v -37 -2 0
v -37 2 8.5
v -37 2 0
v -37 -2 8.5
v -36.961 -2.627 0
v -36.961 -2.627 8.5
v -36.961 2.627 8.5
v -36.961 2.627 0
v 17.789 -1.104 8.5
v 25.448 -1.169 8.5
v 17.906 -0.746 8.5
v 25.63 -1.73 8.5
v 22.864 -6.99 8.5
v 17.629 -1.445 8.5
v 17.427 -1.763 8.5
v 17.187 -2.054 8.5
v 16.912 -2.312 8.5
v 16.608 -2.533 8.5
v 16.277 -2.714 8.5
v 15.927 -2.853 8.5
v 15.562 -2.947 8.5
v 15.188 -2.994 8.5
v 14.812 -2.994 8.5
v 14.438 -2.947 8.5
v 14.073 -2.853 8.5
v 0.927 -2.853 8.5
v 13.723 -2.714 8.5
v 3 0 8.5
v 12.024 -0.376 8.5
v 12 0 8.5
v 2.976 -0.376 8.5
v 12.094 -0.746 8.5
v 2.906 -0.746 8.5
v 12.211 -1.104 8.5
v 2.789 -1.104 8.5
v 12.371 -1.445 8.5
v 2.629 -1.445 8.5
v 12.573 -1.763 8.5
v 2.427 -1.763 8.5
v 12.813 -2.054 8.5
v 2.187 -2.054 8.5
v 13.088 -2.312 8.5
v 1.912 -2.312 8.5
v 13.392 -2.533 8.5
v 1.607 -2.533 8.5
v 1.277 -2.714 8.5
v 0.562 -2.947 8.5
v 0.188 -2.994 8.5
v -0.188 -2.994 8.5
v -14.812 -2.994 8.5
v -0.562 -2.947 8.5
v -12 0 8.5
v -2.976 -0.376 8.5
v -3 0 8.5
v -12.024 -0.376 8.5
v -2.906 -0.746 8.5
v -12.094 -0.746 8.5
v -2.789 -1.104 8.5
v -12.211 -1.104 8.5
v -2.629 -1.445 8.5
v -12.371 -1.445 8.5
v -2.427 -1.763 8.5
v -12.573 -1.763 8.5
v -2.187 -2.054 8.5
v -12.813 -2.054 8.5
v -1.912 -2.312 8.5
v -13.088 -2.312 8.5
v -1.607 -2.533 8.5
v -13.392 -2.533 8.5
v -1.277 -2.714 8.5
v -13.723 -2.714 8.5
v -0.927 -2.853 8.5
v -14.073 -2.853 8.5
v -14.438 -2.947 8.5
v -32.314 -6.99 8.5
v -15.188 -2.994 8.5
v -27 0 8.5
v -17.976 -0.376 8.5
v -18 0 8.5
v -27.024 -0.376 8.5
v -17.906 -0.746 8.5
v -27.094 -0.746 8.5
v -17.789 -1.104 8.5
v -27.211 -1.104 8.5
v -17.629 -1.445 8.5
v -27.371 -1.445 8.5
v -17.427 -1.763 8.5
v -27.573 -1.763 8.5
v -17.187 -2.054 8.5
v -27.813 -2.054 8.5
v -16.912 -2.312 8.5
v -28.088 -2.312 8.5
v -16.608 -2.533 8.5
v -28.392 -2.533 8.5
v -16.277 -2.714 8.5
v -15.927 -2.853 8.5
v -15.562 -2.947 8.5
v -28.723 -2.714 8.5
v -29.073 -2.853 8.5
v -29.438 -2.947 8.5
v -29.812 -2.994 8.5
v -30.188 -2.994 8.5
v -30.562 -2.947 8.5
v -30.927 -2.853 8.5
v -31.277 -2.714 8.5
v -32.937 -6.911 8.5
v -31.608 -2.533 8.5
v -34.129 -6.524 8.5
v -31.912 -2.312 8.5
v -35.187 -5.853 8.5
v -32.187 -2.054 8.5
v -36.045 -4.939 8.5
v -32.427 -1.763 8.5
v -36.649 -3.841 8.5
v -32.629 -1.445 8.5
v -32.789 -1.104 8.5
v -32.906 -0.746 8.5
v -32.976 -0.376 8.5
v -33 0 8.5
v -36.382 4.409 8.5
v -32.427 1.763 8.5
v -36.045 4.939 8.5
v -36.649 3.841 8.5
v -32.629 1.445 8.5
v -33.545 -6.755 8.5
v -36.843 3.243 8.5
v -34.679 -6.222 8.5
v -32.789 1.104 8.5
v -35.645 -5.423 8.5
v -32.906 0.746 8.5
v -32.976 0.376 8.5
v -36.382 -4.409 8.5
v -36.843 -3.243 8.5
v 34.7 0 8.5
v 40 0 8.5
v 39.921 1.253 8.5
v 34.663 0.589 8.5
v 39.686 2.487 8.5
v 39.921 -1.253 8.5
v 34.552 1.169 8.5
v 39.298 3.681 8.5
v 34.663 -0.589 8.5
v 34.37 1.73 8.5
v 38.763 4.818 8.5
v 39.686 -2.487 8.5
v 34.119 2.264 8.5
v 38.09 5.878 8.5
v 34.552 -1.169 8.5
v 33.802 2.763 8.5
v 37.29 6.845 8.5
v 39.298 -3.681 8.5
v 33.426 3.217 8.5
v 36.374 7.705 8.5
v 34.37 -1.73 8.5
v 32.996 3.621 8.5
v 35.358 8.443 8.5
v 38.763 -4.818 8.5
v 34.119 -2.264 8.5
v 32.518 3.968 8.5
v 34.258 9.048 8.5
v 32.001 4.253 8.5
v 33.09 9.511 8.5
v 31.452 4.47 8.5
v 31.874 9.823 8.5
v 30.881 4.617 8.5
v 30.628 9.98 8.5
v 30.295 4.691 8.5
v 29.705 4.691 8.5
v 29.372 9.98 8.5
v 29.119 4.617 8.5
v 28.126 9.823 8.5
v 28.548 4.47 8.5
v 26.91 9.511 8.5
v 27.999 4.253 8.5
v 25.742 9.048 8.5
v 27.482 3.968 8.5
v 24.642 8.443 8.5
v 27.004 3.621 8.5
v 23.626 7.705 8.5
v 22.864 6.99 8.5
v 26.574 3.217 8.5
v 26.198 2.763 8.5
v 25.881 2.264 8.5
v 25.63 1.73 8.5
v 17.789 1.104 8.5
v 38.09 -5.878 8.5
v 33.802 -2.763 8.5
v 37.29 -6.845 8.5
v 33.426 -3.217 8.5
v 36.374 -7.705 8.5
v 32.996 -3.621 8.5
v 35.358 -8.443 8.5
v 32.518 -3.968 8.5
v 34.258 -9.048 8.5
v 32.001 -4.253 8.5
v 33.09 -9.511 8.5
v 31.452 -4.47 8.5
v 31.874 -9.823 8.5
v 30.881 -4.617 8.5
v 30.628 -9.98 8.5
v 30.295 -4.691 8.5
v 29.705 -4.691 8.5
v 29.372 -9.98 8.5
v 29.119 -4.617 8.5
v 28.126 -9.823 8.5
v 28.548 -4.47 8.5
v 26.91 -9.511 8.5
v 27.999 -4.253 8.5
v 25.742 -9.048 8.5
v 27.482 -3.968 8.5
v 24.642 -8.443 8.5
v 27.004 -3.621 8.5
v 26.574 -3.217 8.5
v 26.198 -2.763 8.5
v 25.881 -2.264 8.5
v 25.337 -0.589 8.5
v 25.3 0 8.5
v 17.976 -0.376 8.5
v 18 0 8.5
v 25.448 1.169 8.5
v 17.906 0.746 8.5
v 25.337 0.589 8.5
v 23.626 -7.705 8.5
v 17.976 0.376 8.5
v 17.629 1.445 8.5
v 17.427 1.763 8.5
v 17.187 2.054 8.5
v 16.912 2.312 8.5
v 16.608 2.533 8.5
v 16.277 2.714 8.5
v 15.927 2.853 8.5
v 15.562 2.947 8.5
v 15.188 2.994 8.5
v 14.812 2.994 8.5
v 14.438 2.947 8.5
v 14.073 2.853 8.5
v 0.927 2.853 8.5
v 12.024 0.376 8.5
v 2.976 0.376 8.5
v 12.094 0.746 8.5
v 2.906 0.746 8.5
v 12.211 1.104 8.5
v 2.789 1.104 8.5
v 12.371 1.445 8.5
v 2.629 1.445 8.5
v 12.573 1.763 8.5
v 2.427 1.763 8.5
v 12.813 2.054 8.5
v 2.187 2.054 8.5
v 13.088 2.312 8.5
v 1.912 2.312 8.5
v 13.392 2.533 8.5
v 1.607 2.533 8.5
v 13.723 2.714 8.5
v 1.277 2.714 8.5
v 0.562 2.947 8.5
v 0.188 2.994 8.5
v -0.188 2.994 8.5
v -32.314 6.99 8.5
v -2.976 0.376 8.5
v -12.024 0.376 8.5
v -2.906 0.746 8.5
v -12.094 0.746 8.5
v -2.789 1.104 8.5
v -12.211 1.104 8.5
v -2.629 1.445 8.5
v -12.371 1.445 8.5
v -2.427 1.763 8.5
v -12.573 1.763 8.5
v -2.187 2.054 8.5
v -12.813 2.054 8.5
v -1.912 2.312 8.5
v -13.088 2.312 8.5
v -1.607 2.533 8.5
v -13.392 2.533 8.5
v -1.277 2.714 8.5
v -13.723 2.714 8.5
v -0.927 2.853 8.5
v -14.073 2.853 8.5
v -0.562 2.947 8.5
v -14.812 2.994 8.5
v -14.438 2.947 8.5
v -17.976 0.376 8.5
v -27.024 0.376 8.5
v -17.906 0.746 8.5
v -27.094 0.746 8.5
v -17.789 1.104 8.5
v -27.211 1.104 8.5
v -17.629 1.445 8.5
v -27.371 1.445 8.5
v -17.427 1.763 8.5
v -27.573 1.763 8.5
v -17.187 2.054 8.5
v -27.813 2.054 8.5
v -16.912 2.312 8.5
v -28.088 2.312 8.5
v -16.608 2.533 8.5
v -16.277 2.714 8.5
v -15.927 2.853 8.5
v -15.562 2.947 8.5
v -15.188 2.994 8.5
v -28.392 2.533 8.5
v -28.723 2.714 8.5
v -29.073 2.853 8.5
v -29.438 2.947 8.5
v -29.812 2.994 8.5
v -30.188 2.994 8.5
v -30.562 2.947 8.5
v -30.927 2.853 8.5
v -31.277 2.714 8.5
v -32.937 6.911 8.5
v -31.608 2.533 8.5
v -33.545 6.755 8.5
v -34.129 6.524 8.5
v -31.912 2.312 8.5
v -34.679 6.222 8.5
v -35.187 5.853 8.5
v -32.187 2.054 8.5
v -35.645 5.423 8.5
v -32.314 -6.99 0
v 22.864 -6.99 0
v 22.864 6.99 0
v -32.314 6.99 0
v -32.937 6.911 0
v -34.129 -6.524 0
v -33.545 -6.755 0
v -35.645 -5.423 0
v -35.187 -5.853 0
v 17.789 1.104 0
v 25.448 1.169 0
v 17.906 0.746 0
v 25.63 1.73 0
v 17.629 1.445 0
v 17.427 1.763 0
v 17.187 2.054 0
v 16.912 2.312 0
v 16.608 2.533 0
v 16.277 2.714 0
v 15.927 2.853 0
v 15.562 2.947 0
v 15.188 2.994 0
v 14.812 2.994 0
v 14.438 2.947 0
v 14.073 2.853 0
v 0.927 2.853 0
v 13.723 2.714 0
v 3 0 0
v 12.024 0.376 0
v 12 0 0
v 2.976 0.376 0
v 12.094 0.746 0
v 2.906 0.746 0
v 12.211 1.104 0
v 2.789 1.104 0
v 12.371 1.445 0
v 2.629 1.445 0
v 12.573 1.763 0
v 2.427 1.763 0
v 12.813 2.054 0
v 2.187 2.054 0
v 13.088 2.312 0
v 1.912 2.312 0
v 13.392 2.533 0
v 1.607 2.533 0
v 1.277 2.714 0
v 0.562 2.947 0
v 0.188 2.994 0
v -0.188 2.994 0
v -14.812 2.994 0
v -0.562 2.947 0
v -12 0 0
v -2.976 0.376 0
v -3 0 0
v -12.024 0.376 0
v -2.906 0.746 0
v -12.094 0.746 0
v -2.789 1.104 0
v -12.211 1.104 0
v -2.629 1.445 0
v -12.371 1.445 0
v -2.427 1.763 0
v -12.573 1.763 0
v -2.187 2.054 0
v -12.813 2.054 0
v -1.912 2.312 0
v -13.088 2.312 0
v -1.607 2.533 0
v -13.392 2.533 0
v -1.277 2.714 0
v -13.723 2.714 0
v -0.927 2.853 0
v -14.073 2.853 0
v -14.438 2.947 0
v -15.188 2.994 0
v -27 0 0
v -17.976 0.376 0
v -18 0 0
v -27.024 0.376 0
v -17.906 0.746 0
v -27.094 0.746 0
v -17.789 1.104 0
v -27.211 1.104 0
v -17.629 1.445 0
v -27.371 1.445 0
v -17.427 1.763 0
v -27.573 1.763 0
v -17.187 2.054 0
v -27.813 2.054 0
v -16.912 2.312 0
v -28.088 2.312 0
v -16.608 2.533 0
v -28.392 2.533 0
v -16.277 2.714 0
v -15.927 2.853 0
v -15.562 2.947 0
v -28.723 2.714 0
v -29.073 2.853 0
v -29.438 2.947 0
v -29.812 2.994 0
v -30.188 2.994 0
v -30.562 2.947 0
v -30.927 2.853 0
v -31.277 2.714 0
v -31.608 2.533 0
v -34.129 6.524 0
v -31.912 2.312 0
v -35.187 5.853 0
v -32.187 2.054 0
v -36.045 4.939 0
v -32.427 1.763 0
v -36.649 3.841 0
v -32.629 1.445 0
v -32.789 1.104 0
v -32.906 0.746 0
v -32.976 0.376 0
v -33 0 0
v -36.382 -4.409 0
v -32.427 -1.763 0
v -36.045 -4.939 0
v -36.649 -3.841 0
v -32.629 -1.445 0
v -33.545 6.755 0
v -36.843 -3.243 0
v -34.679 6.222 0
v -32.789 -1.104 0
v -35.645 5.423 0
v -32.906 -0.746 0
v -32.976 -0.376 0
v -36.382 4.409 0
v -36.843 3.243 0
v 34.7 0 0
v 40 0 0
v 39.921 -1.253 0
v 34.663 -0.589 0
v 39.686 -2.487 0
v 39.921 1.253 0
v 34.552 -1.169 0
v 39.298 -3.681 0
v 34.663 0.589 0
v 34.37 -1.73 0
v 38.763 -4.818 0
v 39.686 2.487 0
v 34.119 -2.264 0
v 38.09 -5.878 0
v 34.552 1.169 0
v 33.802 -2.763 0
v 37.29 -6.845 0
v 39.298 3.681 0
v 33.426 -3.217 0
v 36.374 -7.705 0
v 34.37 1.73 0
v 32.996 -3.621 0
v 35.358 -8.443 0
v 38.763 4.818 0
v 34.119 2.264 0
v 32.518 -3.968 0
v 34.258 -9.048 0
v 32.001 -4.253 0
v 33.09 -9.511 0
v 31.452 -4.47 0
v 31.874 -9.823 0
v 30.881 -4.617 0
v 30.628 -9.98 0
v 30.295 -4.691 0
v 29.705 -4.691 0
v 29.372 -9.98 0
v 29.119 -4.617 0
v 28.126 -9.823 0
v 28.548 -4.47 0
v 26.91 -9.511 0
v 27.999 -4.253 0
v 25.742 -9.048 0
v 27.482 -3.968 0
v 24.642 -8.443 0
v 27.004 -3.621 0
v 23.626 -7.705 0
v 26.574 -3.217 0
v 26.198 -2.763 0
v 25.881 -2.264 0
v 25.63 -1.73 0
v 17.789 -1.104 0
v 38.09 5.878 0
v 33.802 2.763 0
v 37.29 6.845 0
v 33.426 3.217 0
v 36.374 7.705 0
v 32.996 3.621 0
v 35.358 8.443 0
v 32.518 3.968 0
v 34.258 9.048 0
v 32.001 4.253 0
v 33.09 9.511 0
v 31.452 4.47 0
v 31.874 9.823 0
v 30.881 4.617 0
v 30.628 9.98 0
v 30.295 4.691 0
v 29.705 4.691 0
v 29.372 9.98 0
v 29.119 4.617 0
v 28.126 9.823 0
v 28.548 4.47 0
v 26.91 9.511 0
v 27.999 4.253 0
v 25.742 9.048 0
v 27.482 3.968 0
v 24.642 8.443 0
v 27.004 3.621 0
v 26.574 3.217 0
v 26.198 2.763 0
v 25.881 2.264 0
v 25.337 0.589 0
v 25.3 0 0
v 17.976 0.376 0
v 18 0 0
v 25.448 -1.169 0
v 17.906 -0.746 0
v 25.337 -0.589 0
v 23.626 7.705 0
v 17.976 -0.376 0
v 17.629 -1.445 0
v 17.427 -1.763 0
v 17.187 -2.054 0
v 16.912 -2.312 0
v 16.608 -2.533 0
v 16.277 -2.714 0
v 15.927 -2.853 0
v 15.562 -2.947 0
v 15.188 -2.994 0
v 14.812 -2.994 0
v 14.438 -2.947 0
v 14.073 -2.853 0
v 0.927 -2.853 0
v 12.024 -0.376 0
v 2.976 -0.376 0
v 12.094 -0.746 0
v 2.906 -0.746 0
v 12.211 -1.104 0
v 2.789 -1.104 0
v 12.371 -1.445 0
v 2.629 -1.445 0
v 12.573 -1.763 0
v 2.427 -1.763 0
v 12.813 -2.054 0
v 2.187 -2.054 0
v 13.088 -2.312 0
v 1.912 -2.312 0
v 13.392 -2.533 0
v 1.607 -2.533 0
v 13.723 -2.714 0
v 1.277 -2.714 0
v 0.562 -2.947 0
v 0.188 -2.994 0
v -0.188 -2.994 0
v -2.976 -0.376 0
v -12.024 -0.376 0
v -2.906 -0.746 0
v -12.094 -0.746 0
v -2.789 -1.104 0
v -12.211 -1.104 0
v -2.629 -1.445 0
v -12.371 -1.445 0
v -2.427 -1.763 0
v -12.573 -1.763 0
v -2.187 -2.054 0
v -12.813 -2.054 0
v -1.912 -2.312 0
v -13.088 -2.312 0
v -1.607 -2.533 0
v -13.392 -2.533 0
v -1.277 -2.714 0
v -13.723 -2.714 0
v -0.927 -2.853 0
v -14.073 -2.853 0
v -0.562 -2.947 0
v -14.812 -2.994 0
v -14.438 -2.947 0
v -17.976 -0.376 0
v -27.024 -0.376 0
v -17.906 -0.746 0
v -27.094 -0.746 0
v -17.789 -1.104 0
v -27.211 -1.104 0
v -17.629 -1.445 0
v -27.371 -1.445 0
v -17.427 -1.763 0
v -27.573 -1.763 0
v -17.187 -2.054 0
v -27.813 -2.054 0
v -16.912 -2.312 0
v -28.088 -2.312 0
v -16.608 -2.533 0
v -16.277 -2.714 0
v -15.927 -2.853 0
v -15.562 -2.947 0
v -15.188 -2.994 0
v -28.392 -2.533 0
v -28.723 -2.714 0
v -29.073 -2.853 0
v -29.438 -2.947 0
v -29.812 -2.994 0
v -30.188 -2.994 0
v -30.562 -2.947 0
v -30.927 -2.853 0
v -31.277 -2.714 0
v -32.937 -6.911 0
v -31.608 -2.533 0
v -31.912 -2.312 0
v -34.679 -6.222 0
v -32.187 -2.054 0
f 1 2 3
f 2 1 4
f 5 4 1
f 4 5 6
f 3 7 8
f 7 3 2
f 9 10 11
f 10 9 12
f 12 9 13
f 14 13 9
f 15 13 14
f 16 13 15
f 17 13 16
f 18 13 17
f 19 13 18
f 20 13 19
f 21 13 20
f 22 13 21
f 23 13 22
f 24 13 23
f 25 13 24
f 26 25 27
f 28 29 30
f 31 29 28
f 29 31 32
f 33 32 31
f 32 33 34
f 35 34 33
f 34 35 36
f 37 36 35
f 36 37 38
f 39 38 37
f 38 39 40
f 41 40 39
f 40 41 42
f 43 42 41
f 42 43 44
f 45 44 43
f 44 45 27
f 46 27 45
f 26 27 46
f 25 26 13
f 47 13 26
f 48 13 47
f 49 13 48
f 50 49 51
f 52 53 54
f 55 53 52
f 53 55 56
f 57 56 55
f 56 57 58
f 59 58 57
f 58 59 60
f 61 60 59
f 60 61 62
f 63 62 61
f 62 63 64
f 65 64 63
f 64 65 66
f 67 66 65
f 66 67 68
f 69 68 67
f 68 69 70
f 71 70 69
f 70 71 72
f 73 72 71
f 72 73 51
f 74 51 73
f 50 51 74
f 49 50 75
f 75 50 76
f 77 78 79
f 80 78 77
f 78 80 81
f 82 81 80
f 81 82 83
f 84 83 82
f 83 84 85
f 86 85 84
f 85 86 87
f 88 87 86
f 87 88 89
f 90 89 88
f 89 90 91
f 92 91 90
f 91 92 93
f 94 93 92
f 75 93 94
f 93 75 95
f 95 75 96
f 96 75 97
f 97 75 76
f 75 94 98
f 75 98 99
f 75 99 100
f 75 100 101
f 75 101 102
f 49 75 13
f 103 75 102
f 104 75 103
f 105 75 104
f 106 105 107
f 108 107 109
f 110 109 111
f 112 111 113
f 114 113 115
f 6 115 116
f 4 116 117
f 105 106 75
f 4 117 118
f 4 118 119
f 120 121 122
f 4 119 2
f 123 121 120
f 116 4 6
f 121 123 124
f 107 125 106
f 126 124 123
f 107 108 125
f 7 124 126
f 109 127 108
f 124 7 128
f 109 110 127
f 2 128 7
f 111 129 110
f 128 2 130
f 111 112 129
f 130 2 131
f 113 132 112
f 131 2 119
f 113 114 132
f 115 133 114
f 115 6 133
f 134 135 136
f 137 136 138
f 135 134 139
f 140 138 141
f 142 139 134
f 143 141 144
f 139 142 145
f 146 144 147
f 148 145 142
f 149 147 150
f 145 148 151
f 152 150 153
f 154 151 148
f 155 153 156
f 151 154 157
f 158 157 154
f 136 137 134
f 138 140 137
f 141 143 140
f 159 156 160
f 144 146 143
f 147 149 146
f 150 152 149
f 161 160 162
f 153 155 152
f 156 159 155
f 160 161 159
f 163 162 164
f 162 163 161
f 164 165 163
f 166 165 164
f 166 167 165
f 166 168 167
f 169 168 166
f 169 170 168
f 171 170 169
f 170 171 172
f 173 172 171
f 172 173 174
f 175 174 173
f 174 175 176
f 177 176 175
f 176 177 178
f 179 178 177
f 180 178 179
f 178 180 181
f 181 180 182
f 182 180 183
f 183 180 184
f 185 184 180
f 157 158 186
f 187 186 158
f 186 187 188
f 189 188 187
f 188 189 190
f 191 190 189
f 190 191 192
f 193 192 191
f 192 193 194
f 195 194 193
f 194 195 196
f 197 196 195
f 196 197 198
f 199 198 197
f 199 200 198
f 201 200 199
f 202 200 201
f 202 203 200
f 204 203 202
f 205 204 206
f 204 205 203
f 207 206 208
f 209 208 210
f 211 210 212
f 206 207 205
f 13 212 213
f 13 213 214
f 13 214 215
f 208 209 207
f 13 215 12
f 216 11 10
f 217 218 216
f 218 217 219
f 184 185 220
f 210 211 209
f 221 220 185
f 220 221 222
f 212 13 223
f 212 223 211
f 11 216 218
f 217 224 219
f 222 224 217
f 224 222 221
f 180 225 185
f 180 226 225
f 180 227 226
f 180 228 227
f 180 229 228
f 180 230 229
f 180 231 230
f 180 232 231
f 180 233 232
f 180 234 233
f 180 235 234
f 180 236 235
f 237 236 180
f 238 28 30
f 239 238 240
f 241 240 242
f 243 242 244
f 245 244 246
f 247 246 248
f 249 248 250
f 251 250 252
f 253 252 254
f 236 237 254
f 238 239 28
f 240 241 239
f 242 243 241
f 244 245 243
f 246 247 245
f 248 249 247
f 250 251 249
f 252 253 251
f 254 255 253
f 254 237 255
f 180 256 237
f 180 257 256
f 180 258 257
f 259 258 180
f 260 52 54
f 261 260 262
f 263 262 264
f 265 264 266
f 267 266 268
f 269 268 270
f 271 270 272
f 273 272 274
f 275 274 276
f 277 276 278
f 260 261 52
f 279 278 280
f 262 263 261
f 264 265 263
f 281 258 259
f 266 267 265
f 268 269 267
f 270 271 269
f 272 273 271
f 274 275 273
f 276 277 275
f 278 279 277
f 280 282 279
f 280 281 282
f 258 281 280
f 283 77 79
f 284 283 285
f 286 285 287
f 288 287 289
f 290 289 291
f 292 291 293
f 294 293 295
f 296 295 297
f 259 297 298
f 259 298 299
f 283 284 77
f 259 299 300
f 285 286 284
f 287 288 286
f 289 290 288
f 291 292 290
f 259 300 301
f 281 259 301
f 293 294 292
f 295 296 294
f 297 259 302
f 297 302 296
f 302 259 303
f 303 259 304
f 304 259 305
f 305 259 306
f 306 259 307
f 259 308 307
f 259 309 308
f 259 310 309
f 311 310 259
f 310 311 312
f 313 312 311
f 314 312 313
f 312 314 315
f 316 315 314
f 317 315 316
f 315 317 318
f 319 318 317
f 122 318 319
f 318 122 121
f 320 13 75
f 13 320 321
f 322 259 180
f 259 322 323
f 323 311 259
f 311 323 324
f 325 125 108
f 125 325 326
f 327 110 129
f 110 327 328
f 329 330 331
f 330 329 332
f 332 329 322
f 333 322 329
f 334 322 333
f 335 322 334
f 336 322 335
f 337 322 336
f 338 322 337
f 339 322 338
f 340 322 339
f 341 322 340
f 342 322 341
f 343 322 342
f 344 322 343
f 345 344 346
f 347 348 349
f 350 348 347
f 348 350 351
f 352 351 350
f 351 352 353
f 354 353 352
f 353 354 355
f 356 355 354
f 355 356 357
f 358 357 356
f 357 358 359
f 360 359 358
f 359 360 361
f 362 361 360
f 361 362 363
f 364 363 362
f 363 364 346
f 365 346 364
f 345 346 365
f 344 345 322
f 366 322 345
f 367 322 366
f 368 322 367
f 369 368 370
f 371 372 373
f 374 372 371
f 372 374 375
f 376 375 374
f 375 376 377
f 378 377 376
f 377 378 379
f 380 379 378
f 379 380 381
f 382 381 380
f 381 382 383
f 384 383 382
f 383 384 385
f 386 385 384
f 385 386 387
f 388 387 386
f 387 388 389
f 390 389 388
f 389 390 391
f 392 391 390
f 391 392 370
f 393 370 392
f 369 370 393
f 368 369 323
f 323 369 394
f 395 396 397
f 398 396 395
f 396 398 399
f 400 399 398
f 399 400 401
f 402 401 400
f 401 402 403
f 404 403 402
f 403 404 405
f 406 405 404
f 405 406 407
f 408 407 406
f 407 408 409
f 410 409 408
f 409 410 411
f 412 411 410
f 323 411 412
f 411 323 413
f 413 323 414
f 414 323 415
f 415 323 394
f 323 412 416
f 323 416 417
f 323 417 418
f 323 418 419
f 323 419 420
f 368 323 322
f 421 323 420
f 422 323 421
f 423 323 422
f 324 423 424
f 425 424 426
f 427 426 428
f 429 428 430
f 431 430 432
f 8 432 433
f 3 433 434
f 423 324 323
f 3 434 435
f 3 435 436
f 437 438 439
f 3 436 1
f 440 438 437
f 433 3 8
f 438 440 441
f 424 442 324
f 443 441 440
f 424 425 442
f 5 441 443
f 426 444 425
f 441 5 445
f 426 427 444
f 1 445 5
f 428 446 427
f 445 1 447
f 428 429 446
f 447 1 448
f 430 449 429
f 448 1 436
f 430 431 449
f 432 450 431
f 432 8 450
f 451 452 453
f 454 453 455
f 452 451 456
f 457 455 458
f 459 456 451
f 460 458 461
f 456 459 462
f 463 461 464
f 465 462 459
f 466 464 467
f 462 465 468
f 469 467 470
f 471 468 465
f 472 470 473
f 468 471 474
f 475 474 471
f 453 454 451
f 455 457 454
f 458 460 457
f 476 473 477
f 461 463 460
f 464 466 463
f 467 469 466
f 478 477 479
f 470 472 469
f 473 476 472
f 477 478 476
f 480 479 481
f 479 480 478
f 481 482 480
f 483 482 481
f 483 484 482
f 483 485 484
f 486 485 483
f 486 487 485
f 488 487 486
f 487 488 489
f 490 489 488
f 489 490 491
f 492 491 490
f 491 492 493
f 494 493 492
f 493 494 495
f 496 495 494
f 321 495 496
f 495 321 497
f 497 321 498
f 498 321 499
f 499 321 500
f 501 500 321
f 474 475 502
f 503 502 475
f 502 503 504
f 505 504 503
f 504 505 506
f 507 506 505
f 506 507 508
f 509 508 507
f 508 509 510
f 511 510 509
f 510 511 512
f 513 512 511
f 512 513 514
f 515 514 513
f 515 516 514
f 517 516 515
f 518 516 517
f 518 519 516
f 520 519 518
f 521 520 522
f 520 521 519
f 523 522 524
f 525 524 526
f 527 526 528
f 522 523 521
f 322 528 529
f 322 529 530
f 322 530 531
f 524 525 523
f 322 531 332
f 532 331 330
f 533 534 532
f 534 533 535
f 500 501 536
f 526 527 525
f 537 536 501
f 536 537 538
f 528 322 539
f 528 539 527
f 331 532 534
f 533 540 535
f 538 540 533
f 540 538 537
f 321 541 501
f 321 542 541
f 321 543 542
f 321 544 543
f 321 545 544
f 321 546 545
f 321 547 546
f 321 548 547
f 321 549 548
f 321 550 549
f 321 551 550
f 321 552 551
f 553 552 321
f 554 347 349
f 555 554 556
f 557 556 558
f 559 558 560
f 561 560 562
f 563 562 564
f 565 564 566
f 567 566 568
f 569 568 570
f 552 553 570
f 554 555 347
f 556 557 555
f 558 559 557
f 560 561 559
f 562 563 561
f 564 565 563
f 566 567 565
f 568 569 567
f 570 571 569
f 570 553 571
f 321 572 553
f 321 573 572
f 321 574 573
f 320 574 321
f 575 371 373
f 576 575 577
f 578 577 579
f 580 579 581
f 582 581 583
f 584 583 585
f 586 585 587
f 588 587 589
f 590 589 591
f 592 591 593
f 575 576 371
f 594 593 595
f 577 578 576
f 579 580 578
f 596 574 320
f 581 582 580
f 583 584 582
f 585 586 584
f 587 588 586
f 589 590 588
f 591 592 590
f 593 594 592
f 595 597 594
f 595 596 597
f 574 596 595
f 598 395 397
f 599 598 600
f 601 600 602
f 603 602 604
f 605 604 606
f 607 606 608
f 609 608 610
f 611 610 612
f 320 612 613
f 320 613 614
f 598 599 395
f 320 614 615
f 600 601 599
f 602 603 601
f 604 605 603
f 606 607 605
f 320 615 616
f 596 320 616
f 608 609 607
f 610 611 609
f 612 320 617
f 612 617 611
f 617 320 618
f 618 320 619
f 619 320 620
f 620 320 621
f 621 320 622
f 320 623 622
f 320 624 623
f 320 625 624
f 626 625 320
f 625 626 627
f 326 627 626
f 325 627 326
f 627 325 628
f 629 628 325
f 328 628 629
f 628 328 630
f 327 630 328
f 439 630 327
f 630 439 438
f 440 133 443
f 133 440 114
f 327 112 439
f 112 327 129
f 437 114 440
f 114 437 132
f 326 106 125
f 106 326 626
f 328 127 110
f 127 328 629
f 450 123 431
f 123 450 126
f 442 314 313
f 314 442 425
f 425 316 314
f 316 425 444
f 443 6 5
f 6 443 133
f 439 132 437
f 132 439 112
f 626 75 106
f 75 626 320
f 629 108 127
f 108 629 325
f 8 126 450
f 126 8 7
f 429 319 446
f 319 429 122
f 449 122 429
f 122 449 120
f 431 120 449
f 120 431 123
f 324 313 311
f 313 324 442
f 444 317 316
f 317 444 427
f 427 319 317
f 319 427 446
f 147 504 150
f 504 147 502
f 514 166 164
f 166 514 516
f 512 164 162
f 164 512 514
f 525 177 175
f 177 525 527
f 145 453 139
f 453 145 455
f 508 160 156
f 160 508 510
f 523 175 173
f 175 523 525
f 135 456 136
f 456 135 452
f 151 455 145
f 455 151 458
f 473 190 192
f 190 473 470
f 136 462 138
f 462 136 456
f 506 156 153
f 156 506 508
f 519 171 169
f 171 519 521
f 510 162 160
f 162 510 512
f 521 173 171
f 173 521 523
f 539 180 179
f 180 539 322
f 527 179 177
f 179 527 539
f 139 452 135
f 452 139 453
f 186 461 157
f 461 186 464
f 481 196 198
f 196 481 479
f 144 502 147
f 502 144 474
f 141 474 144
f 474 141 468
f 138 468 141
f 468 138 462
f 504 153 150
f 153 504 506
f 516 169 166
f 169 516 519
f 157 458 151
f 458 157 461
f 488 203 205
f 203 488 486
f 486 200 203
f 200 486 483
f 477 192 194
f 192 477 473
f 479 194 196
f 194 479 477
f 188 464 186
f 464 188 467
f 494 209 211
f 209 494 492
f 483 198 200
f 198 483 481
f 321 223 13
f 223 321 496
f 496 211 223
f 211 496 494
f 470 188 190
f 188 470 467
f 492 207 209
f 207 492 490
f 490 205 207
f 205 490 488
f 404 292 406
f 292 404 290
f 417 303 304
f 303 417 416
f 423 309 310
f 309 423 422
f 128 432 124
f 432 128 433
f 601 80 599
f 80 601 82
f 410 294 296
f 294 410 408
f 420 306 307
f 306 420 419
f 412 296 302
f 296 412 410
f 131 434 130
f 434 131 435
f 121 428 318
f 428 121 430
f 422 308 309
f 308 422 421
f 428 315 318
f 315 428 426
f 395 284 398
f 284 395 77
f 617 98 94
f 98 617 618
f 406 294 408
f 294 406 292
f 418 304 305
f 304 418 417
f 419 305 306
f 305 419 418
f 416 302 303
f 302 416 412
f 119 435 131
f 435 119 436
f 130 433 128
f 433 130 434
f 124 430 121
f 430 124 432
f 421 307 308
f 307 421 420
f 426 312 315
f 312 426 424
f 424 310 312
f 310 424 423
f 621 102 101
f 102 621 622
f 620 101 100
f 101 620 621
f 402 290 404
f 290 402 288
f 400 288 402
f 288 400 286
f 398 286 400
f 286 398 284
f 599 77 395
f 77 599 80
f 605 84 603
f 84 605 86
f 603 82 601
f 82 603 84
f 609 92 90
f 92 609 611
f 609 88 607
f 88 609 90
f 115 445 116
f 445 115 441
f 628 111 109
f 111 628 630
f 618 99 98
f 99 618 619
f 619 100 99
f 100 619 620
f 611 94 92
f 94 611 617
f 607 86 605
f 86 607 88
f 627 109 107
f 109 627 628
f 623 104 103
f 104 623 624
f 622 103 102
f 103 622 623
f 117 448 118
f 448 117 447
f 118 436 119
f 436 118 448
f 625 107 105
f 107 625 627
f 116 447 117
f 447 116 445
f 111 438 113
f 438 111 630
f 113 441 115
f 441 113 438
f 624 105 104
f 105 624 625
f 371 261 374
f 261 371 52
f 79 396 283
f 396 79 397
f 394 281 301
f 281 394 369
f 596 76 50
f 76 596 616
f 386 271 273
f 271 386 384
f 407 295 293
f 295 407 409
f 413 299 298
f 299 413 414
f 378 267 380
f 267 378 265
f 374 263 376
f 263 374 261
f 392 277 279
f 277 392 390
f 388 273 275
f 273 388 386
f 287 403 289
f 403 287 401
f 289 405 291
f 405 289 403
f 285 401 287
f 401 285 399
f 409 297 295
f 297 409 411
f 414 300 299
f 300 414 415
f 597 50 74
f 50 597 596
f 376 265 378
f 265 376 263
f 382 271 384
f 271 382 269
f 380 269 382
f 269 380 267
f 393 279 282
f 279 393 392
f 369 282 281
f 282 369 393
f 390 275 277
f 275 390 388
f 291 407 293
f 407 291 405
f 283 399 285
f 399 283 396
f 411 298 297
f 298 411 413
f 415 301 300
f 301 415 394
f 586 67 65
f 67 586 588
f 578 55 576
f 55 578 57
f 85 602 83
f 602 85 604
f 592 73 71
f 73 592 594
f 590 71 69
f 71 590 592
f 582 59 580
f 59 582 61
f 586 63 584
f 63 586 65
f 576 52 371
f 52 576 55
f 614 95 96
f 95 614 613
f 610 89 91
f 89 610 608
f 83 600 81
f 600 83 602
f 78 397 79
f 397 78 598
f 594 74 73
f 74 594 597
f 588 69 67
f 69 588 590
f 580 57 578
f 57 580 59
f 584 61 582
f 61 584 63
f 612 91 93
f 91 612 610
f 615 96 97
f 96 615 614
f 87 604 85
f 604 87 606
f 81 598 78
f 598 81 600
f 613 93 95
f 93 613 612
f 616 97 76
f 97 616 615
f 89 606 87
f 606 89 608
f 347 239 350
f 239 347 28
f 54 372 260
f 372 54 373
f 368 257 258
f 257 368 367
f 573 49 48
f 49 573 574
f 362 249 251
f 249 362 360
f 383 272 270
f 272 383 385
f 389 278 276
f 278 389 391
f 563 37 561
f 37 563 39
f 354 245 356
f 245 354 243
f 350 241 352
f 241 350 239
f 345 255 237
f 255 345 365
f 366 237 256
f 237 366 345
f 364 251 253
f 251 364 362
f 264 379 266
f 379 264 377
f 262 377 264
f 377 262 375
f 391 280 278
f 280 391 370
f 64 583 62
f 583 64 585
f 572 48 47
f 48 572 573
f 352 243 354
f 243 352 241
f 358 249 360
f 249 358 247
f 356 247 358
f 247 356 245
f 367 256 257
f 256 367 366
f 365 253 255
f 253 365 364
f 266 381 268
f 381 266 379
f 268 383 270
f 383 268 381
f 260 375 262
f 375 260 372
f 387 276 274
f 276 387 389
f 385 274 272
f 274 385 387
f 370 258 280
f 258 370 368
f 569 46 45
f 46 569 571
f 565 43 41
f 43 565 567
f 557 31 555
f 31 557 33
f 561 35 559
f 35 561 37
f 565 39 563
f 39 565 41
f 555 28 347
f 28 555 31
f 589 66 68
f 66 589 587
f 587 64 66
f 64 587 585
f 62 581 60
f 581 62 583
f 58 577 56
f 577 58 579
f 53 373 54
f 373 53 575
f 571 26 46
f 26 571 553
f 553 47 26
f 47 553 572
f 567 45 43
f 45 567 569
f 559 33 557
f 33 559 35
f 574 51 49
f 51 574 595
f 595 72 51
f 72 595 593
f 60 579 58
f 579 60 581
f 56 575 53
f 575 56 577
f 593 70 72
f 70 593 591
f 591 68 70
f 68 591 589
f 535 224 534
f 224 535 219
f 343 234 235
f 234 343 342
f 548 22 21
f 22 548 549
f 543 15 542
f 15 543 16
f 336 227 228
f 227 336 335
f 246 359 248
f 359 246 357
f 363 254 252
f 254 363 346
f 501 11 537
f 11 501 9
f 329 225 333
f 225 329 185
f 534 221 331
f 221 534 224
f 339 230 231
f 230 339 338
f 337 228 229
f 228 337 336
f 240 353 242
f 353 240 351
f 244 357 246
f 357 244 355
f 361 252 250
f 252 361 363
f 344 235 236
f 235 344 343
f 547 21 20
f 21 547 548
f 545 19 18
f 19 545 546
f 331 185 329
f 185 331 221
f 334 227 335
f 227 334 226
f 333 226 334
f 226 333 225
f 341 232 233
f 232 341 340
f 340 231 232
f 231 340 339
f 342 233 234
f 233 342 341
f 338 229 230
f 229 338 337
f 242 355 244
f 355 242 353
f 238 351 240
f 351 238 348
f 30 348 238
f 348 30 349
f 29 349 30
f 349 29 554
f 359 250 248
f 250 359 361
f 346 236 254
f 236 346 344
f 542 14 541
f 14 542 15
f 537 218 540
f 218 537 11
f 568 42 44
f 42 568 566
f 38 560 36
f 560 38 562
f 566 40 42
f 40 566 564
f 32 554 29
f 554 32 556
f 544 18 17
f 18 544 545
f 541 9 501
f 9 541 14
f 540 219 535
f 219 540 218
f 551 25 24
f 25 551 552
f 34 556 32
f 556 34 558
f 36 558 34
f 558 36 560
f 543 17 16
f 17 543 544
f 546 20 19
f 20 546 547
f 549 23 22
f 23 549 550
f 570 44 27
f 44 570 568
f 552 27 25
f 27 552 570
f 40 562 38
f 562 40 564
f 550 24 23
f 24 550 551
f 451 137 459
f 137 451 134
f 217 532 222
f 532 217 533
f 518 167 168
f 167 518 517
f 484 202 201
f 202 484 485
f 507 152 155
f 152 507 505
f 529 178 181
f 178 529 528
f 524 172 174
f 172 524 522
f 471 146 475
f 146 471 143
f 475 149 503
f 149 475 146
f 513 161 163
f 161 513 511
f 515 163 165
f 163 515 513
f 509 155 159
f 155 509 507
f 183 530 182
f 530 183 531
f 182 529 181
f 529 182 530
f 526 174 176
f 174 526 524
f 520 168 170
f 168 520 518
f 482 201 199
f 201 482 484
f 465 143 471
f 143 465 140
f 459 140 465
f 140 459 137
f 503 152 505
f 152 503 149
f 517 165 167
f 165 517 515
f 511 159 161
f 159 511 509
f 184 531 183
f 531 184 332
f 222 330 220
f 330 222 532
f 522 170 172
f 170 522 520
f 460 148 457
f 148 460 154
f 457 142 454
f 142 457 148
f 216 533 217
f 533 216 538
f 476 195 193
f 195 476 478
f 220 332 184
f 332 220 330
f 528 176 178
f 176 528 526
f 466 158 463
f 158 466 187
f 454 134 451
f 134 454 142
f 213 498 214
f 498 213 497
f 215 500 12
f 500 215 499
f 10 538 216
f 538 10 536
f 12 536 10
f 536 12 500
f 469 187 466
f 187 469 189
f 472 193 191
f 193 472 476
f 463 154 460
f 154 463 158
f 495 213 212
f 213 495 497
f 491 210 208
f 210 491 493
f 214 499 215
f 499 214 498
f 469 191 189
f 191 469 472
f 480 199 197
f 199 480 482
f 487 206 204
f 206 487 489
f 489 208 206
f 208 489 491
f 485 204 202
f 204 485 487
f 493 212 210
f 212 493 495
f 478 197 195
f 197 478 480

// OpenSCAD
$fn = 50;


difference() {
	union() {
		translate(v = [0, 0, 0]) {
			rotate(a = [0, 0, 0]) {
				hull() {
					translate(v = [-32.0000000000, 2.0000000000, 0]) {
						rotate(a = [0, 0, 0]) {
							translate(v = [0, 0, 0]) {
								rotate(a = [0, 0, 0]) {
									cylinder(h = 8.5000000000, r = 5);
								}
							}
						}
					}
					translate(v = [32.0000000000, 2.0000000000, 0]) {
						rotate(a = [0, 0, 0]) {
							translate(v = [0, 0, 0]) {
								rotate(a = [0, 0, 0]) {
									cylinder(h = 8.5000000000, r = 5);
								}
							}
						}
					}
					translate(v = [-32.0000000000, -2.0000000000, 0]) {
						rotate(a = [0, 0, 0]) {
							translate(v = [0, 0, 0]) {
								rotate(a = [0, 0, 0]) {
									cylinder(h = 8.5000000000, r = 5);
								}
							}
						}
					}
					translate(v = [32.0000000000, -2.0000000000, 0]) {
						rotate(a = [0, 0, 0]) {
							translate(v = [0, 0, 0]) {
								rotate(a = [0, 0, 0]) {
									cylinder(h = 8.5000000000, r = 5);
								}
							}
						}
					}
				}
			}
		}
		translate(v = [30.0000000000, 0, 0.0000000000]) {
			rotate(a = [0, 0, 0]) {
				cylinder(h = 8.5000000000, r = 10.0000000000);
			}
		}
	}
	union() {
		translate(v = [-30.0000000000, 0.0000000000, 0]) {
			rotate(a = [0, 0, 0]) {
				translate(v = [0, 0, -50]) {
					rotate(a = [0, 0, 0]) {
						cylinder(h = 100, r = 3.0000000000);
					}
				}
			}
		}
		translate(v = [-15.0000000000, 0.0000000000, 0]) {
			rotate(a = [0, 0, 0]) {
				translate(v = [0, 0, -50]) {
					rotate(a = [0, 0, 0]) {
						cylinder(h = 100, r = 3.0000000000);
					}
				}
			}
		}
		translate(v = [0.0000000000, 0.0000000000, 0]) {
			rotate(a = [0, 0, 0]) {
				translate(v = [0, 0, -50]) {
					rotate(a = [0, 0, 0]) {
						cylinder(h = 100, r = 3.0000000000);
					}
				}
			}
		}
		translate(v = [15.0000000000, 0.0000000000, 0]) {
			rotate(a = [0, 0, 0]) {
				translate(v = [0, 0, -50]) {
					rotate(a = [0, 0, 0]) {
						cylinder(h = 100, r = 3.0000000000);
					}
				}
			}
		}
		translate(v = [30.0000000000, 0.0000000000, 0]) {
			rotate(a = [0, 0, 0]) {
				translate(v = [0, 0, -50]) {
					rotate(a = [0, 0, 0]) {
						cylinder(h = 100, r = 3.0000000000);
					}
				}
			}
		}
		translate(v = [30.0000000000, 0, -125.0000000000]) {
			rotate(a = [0, 0, 0]) {
				cylinder(h = 250, r = 4.7000000000);
			}
		}
	}
}
